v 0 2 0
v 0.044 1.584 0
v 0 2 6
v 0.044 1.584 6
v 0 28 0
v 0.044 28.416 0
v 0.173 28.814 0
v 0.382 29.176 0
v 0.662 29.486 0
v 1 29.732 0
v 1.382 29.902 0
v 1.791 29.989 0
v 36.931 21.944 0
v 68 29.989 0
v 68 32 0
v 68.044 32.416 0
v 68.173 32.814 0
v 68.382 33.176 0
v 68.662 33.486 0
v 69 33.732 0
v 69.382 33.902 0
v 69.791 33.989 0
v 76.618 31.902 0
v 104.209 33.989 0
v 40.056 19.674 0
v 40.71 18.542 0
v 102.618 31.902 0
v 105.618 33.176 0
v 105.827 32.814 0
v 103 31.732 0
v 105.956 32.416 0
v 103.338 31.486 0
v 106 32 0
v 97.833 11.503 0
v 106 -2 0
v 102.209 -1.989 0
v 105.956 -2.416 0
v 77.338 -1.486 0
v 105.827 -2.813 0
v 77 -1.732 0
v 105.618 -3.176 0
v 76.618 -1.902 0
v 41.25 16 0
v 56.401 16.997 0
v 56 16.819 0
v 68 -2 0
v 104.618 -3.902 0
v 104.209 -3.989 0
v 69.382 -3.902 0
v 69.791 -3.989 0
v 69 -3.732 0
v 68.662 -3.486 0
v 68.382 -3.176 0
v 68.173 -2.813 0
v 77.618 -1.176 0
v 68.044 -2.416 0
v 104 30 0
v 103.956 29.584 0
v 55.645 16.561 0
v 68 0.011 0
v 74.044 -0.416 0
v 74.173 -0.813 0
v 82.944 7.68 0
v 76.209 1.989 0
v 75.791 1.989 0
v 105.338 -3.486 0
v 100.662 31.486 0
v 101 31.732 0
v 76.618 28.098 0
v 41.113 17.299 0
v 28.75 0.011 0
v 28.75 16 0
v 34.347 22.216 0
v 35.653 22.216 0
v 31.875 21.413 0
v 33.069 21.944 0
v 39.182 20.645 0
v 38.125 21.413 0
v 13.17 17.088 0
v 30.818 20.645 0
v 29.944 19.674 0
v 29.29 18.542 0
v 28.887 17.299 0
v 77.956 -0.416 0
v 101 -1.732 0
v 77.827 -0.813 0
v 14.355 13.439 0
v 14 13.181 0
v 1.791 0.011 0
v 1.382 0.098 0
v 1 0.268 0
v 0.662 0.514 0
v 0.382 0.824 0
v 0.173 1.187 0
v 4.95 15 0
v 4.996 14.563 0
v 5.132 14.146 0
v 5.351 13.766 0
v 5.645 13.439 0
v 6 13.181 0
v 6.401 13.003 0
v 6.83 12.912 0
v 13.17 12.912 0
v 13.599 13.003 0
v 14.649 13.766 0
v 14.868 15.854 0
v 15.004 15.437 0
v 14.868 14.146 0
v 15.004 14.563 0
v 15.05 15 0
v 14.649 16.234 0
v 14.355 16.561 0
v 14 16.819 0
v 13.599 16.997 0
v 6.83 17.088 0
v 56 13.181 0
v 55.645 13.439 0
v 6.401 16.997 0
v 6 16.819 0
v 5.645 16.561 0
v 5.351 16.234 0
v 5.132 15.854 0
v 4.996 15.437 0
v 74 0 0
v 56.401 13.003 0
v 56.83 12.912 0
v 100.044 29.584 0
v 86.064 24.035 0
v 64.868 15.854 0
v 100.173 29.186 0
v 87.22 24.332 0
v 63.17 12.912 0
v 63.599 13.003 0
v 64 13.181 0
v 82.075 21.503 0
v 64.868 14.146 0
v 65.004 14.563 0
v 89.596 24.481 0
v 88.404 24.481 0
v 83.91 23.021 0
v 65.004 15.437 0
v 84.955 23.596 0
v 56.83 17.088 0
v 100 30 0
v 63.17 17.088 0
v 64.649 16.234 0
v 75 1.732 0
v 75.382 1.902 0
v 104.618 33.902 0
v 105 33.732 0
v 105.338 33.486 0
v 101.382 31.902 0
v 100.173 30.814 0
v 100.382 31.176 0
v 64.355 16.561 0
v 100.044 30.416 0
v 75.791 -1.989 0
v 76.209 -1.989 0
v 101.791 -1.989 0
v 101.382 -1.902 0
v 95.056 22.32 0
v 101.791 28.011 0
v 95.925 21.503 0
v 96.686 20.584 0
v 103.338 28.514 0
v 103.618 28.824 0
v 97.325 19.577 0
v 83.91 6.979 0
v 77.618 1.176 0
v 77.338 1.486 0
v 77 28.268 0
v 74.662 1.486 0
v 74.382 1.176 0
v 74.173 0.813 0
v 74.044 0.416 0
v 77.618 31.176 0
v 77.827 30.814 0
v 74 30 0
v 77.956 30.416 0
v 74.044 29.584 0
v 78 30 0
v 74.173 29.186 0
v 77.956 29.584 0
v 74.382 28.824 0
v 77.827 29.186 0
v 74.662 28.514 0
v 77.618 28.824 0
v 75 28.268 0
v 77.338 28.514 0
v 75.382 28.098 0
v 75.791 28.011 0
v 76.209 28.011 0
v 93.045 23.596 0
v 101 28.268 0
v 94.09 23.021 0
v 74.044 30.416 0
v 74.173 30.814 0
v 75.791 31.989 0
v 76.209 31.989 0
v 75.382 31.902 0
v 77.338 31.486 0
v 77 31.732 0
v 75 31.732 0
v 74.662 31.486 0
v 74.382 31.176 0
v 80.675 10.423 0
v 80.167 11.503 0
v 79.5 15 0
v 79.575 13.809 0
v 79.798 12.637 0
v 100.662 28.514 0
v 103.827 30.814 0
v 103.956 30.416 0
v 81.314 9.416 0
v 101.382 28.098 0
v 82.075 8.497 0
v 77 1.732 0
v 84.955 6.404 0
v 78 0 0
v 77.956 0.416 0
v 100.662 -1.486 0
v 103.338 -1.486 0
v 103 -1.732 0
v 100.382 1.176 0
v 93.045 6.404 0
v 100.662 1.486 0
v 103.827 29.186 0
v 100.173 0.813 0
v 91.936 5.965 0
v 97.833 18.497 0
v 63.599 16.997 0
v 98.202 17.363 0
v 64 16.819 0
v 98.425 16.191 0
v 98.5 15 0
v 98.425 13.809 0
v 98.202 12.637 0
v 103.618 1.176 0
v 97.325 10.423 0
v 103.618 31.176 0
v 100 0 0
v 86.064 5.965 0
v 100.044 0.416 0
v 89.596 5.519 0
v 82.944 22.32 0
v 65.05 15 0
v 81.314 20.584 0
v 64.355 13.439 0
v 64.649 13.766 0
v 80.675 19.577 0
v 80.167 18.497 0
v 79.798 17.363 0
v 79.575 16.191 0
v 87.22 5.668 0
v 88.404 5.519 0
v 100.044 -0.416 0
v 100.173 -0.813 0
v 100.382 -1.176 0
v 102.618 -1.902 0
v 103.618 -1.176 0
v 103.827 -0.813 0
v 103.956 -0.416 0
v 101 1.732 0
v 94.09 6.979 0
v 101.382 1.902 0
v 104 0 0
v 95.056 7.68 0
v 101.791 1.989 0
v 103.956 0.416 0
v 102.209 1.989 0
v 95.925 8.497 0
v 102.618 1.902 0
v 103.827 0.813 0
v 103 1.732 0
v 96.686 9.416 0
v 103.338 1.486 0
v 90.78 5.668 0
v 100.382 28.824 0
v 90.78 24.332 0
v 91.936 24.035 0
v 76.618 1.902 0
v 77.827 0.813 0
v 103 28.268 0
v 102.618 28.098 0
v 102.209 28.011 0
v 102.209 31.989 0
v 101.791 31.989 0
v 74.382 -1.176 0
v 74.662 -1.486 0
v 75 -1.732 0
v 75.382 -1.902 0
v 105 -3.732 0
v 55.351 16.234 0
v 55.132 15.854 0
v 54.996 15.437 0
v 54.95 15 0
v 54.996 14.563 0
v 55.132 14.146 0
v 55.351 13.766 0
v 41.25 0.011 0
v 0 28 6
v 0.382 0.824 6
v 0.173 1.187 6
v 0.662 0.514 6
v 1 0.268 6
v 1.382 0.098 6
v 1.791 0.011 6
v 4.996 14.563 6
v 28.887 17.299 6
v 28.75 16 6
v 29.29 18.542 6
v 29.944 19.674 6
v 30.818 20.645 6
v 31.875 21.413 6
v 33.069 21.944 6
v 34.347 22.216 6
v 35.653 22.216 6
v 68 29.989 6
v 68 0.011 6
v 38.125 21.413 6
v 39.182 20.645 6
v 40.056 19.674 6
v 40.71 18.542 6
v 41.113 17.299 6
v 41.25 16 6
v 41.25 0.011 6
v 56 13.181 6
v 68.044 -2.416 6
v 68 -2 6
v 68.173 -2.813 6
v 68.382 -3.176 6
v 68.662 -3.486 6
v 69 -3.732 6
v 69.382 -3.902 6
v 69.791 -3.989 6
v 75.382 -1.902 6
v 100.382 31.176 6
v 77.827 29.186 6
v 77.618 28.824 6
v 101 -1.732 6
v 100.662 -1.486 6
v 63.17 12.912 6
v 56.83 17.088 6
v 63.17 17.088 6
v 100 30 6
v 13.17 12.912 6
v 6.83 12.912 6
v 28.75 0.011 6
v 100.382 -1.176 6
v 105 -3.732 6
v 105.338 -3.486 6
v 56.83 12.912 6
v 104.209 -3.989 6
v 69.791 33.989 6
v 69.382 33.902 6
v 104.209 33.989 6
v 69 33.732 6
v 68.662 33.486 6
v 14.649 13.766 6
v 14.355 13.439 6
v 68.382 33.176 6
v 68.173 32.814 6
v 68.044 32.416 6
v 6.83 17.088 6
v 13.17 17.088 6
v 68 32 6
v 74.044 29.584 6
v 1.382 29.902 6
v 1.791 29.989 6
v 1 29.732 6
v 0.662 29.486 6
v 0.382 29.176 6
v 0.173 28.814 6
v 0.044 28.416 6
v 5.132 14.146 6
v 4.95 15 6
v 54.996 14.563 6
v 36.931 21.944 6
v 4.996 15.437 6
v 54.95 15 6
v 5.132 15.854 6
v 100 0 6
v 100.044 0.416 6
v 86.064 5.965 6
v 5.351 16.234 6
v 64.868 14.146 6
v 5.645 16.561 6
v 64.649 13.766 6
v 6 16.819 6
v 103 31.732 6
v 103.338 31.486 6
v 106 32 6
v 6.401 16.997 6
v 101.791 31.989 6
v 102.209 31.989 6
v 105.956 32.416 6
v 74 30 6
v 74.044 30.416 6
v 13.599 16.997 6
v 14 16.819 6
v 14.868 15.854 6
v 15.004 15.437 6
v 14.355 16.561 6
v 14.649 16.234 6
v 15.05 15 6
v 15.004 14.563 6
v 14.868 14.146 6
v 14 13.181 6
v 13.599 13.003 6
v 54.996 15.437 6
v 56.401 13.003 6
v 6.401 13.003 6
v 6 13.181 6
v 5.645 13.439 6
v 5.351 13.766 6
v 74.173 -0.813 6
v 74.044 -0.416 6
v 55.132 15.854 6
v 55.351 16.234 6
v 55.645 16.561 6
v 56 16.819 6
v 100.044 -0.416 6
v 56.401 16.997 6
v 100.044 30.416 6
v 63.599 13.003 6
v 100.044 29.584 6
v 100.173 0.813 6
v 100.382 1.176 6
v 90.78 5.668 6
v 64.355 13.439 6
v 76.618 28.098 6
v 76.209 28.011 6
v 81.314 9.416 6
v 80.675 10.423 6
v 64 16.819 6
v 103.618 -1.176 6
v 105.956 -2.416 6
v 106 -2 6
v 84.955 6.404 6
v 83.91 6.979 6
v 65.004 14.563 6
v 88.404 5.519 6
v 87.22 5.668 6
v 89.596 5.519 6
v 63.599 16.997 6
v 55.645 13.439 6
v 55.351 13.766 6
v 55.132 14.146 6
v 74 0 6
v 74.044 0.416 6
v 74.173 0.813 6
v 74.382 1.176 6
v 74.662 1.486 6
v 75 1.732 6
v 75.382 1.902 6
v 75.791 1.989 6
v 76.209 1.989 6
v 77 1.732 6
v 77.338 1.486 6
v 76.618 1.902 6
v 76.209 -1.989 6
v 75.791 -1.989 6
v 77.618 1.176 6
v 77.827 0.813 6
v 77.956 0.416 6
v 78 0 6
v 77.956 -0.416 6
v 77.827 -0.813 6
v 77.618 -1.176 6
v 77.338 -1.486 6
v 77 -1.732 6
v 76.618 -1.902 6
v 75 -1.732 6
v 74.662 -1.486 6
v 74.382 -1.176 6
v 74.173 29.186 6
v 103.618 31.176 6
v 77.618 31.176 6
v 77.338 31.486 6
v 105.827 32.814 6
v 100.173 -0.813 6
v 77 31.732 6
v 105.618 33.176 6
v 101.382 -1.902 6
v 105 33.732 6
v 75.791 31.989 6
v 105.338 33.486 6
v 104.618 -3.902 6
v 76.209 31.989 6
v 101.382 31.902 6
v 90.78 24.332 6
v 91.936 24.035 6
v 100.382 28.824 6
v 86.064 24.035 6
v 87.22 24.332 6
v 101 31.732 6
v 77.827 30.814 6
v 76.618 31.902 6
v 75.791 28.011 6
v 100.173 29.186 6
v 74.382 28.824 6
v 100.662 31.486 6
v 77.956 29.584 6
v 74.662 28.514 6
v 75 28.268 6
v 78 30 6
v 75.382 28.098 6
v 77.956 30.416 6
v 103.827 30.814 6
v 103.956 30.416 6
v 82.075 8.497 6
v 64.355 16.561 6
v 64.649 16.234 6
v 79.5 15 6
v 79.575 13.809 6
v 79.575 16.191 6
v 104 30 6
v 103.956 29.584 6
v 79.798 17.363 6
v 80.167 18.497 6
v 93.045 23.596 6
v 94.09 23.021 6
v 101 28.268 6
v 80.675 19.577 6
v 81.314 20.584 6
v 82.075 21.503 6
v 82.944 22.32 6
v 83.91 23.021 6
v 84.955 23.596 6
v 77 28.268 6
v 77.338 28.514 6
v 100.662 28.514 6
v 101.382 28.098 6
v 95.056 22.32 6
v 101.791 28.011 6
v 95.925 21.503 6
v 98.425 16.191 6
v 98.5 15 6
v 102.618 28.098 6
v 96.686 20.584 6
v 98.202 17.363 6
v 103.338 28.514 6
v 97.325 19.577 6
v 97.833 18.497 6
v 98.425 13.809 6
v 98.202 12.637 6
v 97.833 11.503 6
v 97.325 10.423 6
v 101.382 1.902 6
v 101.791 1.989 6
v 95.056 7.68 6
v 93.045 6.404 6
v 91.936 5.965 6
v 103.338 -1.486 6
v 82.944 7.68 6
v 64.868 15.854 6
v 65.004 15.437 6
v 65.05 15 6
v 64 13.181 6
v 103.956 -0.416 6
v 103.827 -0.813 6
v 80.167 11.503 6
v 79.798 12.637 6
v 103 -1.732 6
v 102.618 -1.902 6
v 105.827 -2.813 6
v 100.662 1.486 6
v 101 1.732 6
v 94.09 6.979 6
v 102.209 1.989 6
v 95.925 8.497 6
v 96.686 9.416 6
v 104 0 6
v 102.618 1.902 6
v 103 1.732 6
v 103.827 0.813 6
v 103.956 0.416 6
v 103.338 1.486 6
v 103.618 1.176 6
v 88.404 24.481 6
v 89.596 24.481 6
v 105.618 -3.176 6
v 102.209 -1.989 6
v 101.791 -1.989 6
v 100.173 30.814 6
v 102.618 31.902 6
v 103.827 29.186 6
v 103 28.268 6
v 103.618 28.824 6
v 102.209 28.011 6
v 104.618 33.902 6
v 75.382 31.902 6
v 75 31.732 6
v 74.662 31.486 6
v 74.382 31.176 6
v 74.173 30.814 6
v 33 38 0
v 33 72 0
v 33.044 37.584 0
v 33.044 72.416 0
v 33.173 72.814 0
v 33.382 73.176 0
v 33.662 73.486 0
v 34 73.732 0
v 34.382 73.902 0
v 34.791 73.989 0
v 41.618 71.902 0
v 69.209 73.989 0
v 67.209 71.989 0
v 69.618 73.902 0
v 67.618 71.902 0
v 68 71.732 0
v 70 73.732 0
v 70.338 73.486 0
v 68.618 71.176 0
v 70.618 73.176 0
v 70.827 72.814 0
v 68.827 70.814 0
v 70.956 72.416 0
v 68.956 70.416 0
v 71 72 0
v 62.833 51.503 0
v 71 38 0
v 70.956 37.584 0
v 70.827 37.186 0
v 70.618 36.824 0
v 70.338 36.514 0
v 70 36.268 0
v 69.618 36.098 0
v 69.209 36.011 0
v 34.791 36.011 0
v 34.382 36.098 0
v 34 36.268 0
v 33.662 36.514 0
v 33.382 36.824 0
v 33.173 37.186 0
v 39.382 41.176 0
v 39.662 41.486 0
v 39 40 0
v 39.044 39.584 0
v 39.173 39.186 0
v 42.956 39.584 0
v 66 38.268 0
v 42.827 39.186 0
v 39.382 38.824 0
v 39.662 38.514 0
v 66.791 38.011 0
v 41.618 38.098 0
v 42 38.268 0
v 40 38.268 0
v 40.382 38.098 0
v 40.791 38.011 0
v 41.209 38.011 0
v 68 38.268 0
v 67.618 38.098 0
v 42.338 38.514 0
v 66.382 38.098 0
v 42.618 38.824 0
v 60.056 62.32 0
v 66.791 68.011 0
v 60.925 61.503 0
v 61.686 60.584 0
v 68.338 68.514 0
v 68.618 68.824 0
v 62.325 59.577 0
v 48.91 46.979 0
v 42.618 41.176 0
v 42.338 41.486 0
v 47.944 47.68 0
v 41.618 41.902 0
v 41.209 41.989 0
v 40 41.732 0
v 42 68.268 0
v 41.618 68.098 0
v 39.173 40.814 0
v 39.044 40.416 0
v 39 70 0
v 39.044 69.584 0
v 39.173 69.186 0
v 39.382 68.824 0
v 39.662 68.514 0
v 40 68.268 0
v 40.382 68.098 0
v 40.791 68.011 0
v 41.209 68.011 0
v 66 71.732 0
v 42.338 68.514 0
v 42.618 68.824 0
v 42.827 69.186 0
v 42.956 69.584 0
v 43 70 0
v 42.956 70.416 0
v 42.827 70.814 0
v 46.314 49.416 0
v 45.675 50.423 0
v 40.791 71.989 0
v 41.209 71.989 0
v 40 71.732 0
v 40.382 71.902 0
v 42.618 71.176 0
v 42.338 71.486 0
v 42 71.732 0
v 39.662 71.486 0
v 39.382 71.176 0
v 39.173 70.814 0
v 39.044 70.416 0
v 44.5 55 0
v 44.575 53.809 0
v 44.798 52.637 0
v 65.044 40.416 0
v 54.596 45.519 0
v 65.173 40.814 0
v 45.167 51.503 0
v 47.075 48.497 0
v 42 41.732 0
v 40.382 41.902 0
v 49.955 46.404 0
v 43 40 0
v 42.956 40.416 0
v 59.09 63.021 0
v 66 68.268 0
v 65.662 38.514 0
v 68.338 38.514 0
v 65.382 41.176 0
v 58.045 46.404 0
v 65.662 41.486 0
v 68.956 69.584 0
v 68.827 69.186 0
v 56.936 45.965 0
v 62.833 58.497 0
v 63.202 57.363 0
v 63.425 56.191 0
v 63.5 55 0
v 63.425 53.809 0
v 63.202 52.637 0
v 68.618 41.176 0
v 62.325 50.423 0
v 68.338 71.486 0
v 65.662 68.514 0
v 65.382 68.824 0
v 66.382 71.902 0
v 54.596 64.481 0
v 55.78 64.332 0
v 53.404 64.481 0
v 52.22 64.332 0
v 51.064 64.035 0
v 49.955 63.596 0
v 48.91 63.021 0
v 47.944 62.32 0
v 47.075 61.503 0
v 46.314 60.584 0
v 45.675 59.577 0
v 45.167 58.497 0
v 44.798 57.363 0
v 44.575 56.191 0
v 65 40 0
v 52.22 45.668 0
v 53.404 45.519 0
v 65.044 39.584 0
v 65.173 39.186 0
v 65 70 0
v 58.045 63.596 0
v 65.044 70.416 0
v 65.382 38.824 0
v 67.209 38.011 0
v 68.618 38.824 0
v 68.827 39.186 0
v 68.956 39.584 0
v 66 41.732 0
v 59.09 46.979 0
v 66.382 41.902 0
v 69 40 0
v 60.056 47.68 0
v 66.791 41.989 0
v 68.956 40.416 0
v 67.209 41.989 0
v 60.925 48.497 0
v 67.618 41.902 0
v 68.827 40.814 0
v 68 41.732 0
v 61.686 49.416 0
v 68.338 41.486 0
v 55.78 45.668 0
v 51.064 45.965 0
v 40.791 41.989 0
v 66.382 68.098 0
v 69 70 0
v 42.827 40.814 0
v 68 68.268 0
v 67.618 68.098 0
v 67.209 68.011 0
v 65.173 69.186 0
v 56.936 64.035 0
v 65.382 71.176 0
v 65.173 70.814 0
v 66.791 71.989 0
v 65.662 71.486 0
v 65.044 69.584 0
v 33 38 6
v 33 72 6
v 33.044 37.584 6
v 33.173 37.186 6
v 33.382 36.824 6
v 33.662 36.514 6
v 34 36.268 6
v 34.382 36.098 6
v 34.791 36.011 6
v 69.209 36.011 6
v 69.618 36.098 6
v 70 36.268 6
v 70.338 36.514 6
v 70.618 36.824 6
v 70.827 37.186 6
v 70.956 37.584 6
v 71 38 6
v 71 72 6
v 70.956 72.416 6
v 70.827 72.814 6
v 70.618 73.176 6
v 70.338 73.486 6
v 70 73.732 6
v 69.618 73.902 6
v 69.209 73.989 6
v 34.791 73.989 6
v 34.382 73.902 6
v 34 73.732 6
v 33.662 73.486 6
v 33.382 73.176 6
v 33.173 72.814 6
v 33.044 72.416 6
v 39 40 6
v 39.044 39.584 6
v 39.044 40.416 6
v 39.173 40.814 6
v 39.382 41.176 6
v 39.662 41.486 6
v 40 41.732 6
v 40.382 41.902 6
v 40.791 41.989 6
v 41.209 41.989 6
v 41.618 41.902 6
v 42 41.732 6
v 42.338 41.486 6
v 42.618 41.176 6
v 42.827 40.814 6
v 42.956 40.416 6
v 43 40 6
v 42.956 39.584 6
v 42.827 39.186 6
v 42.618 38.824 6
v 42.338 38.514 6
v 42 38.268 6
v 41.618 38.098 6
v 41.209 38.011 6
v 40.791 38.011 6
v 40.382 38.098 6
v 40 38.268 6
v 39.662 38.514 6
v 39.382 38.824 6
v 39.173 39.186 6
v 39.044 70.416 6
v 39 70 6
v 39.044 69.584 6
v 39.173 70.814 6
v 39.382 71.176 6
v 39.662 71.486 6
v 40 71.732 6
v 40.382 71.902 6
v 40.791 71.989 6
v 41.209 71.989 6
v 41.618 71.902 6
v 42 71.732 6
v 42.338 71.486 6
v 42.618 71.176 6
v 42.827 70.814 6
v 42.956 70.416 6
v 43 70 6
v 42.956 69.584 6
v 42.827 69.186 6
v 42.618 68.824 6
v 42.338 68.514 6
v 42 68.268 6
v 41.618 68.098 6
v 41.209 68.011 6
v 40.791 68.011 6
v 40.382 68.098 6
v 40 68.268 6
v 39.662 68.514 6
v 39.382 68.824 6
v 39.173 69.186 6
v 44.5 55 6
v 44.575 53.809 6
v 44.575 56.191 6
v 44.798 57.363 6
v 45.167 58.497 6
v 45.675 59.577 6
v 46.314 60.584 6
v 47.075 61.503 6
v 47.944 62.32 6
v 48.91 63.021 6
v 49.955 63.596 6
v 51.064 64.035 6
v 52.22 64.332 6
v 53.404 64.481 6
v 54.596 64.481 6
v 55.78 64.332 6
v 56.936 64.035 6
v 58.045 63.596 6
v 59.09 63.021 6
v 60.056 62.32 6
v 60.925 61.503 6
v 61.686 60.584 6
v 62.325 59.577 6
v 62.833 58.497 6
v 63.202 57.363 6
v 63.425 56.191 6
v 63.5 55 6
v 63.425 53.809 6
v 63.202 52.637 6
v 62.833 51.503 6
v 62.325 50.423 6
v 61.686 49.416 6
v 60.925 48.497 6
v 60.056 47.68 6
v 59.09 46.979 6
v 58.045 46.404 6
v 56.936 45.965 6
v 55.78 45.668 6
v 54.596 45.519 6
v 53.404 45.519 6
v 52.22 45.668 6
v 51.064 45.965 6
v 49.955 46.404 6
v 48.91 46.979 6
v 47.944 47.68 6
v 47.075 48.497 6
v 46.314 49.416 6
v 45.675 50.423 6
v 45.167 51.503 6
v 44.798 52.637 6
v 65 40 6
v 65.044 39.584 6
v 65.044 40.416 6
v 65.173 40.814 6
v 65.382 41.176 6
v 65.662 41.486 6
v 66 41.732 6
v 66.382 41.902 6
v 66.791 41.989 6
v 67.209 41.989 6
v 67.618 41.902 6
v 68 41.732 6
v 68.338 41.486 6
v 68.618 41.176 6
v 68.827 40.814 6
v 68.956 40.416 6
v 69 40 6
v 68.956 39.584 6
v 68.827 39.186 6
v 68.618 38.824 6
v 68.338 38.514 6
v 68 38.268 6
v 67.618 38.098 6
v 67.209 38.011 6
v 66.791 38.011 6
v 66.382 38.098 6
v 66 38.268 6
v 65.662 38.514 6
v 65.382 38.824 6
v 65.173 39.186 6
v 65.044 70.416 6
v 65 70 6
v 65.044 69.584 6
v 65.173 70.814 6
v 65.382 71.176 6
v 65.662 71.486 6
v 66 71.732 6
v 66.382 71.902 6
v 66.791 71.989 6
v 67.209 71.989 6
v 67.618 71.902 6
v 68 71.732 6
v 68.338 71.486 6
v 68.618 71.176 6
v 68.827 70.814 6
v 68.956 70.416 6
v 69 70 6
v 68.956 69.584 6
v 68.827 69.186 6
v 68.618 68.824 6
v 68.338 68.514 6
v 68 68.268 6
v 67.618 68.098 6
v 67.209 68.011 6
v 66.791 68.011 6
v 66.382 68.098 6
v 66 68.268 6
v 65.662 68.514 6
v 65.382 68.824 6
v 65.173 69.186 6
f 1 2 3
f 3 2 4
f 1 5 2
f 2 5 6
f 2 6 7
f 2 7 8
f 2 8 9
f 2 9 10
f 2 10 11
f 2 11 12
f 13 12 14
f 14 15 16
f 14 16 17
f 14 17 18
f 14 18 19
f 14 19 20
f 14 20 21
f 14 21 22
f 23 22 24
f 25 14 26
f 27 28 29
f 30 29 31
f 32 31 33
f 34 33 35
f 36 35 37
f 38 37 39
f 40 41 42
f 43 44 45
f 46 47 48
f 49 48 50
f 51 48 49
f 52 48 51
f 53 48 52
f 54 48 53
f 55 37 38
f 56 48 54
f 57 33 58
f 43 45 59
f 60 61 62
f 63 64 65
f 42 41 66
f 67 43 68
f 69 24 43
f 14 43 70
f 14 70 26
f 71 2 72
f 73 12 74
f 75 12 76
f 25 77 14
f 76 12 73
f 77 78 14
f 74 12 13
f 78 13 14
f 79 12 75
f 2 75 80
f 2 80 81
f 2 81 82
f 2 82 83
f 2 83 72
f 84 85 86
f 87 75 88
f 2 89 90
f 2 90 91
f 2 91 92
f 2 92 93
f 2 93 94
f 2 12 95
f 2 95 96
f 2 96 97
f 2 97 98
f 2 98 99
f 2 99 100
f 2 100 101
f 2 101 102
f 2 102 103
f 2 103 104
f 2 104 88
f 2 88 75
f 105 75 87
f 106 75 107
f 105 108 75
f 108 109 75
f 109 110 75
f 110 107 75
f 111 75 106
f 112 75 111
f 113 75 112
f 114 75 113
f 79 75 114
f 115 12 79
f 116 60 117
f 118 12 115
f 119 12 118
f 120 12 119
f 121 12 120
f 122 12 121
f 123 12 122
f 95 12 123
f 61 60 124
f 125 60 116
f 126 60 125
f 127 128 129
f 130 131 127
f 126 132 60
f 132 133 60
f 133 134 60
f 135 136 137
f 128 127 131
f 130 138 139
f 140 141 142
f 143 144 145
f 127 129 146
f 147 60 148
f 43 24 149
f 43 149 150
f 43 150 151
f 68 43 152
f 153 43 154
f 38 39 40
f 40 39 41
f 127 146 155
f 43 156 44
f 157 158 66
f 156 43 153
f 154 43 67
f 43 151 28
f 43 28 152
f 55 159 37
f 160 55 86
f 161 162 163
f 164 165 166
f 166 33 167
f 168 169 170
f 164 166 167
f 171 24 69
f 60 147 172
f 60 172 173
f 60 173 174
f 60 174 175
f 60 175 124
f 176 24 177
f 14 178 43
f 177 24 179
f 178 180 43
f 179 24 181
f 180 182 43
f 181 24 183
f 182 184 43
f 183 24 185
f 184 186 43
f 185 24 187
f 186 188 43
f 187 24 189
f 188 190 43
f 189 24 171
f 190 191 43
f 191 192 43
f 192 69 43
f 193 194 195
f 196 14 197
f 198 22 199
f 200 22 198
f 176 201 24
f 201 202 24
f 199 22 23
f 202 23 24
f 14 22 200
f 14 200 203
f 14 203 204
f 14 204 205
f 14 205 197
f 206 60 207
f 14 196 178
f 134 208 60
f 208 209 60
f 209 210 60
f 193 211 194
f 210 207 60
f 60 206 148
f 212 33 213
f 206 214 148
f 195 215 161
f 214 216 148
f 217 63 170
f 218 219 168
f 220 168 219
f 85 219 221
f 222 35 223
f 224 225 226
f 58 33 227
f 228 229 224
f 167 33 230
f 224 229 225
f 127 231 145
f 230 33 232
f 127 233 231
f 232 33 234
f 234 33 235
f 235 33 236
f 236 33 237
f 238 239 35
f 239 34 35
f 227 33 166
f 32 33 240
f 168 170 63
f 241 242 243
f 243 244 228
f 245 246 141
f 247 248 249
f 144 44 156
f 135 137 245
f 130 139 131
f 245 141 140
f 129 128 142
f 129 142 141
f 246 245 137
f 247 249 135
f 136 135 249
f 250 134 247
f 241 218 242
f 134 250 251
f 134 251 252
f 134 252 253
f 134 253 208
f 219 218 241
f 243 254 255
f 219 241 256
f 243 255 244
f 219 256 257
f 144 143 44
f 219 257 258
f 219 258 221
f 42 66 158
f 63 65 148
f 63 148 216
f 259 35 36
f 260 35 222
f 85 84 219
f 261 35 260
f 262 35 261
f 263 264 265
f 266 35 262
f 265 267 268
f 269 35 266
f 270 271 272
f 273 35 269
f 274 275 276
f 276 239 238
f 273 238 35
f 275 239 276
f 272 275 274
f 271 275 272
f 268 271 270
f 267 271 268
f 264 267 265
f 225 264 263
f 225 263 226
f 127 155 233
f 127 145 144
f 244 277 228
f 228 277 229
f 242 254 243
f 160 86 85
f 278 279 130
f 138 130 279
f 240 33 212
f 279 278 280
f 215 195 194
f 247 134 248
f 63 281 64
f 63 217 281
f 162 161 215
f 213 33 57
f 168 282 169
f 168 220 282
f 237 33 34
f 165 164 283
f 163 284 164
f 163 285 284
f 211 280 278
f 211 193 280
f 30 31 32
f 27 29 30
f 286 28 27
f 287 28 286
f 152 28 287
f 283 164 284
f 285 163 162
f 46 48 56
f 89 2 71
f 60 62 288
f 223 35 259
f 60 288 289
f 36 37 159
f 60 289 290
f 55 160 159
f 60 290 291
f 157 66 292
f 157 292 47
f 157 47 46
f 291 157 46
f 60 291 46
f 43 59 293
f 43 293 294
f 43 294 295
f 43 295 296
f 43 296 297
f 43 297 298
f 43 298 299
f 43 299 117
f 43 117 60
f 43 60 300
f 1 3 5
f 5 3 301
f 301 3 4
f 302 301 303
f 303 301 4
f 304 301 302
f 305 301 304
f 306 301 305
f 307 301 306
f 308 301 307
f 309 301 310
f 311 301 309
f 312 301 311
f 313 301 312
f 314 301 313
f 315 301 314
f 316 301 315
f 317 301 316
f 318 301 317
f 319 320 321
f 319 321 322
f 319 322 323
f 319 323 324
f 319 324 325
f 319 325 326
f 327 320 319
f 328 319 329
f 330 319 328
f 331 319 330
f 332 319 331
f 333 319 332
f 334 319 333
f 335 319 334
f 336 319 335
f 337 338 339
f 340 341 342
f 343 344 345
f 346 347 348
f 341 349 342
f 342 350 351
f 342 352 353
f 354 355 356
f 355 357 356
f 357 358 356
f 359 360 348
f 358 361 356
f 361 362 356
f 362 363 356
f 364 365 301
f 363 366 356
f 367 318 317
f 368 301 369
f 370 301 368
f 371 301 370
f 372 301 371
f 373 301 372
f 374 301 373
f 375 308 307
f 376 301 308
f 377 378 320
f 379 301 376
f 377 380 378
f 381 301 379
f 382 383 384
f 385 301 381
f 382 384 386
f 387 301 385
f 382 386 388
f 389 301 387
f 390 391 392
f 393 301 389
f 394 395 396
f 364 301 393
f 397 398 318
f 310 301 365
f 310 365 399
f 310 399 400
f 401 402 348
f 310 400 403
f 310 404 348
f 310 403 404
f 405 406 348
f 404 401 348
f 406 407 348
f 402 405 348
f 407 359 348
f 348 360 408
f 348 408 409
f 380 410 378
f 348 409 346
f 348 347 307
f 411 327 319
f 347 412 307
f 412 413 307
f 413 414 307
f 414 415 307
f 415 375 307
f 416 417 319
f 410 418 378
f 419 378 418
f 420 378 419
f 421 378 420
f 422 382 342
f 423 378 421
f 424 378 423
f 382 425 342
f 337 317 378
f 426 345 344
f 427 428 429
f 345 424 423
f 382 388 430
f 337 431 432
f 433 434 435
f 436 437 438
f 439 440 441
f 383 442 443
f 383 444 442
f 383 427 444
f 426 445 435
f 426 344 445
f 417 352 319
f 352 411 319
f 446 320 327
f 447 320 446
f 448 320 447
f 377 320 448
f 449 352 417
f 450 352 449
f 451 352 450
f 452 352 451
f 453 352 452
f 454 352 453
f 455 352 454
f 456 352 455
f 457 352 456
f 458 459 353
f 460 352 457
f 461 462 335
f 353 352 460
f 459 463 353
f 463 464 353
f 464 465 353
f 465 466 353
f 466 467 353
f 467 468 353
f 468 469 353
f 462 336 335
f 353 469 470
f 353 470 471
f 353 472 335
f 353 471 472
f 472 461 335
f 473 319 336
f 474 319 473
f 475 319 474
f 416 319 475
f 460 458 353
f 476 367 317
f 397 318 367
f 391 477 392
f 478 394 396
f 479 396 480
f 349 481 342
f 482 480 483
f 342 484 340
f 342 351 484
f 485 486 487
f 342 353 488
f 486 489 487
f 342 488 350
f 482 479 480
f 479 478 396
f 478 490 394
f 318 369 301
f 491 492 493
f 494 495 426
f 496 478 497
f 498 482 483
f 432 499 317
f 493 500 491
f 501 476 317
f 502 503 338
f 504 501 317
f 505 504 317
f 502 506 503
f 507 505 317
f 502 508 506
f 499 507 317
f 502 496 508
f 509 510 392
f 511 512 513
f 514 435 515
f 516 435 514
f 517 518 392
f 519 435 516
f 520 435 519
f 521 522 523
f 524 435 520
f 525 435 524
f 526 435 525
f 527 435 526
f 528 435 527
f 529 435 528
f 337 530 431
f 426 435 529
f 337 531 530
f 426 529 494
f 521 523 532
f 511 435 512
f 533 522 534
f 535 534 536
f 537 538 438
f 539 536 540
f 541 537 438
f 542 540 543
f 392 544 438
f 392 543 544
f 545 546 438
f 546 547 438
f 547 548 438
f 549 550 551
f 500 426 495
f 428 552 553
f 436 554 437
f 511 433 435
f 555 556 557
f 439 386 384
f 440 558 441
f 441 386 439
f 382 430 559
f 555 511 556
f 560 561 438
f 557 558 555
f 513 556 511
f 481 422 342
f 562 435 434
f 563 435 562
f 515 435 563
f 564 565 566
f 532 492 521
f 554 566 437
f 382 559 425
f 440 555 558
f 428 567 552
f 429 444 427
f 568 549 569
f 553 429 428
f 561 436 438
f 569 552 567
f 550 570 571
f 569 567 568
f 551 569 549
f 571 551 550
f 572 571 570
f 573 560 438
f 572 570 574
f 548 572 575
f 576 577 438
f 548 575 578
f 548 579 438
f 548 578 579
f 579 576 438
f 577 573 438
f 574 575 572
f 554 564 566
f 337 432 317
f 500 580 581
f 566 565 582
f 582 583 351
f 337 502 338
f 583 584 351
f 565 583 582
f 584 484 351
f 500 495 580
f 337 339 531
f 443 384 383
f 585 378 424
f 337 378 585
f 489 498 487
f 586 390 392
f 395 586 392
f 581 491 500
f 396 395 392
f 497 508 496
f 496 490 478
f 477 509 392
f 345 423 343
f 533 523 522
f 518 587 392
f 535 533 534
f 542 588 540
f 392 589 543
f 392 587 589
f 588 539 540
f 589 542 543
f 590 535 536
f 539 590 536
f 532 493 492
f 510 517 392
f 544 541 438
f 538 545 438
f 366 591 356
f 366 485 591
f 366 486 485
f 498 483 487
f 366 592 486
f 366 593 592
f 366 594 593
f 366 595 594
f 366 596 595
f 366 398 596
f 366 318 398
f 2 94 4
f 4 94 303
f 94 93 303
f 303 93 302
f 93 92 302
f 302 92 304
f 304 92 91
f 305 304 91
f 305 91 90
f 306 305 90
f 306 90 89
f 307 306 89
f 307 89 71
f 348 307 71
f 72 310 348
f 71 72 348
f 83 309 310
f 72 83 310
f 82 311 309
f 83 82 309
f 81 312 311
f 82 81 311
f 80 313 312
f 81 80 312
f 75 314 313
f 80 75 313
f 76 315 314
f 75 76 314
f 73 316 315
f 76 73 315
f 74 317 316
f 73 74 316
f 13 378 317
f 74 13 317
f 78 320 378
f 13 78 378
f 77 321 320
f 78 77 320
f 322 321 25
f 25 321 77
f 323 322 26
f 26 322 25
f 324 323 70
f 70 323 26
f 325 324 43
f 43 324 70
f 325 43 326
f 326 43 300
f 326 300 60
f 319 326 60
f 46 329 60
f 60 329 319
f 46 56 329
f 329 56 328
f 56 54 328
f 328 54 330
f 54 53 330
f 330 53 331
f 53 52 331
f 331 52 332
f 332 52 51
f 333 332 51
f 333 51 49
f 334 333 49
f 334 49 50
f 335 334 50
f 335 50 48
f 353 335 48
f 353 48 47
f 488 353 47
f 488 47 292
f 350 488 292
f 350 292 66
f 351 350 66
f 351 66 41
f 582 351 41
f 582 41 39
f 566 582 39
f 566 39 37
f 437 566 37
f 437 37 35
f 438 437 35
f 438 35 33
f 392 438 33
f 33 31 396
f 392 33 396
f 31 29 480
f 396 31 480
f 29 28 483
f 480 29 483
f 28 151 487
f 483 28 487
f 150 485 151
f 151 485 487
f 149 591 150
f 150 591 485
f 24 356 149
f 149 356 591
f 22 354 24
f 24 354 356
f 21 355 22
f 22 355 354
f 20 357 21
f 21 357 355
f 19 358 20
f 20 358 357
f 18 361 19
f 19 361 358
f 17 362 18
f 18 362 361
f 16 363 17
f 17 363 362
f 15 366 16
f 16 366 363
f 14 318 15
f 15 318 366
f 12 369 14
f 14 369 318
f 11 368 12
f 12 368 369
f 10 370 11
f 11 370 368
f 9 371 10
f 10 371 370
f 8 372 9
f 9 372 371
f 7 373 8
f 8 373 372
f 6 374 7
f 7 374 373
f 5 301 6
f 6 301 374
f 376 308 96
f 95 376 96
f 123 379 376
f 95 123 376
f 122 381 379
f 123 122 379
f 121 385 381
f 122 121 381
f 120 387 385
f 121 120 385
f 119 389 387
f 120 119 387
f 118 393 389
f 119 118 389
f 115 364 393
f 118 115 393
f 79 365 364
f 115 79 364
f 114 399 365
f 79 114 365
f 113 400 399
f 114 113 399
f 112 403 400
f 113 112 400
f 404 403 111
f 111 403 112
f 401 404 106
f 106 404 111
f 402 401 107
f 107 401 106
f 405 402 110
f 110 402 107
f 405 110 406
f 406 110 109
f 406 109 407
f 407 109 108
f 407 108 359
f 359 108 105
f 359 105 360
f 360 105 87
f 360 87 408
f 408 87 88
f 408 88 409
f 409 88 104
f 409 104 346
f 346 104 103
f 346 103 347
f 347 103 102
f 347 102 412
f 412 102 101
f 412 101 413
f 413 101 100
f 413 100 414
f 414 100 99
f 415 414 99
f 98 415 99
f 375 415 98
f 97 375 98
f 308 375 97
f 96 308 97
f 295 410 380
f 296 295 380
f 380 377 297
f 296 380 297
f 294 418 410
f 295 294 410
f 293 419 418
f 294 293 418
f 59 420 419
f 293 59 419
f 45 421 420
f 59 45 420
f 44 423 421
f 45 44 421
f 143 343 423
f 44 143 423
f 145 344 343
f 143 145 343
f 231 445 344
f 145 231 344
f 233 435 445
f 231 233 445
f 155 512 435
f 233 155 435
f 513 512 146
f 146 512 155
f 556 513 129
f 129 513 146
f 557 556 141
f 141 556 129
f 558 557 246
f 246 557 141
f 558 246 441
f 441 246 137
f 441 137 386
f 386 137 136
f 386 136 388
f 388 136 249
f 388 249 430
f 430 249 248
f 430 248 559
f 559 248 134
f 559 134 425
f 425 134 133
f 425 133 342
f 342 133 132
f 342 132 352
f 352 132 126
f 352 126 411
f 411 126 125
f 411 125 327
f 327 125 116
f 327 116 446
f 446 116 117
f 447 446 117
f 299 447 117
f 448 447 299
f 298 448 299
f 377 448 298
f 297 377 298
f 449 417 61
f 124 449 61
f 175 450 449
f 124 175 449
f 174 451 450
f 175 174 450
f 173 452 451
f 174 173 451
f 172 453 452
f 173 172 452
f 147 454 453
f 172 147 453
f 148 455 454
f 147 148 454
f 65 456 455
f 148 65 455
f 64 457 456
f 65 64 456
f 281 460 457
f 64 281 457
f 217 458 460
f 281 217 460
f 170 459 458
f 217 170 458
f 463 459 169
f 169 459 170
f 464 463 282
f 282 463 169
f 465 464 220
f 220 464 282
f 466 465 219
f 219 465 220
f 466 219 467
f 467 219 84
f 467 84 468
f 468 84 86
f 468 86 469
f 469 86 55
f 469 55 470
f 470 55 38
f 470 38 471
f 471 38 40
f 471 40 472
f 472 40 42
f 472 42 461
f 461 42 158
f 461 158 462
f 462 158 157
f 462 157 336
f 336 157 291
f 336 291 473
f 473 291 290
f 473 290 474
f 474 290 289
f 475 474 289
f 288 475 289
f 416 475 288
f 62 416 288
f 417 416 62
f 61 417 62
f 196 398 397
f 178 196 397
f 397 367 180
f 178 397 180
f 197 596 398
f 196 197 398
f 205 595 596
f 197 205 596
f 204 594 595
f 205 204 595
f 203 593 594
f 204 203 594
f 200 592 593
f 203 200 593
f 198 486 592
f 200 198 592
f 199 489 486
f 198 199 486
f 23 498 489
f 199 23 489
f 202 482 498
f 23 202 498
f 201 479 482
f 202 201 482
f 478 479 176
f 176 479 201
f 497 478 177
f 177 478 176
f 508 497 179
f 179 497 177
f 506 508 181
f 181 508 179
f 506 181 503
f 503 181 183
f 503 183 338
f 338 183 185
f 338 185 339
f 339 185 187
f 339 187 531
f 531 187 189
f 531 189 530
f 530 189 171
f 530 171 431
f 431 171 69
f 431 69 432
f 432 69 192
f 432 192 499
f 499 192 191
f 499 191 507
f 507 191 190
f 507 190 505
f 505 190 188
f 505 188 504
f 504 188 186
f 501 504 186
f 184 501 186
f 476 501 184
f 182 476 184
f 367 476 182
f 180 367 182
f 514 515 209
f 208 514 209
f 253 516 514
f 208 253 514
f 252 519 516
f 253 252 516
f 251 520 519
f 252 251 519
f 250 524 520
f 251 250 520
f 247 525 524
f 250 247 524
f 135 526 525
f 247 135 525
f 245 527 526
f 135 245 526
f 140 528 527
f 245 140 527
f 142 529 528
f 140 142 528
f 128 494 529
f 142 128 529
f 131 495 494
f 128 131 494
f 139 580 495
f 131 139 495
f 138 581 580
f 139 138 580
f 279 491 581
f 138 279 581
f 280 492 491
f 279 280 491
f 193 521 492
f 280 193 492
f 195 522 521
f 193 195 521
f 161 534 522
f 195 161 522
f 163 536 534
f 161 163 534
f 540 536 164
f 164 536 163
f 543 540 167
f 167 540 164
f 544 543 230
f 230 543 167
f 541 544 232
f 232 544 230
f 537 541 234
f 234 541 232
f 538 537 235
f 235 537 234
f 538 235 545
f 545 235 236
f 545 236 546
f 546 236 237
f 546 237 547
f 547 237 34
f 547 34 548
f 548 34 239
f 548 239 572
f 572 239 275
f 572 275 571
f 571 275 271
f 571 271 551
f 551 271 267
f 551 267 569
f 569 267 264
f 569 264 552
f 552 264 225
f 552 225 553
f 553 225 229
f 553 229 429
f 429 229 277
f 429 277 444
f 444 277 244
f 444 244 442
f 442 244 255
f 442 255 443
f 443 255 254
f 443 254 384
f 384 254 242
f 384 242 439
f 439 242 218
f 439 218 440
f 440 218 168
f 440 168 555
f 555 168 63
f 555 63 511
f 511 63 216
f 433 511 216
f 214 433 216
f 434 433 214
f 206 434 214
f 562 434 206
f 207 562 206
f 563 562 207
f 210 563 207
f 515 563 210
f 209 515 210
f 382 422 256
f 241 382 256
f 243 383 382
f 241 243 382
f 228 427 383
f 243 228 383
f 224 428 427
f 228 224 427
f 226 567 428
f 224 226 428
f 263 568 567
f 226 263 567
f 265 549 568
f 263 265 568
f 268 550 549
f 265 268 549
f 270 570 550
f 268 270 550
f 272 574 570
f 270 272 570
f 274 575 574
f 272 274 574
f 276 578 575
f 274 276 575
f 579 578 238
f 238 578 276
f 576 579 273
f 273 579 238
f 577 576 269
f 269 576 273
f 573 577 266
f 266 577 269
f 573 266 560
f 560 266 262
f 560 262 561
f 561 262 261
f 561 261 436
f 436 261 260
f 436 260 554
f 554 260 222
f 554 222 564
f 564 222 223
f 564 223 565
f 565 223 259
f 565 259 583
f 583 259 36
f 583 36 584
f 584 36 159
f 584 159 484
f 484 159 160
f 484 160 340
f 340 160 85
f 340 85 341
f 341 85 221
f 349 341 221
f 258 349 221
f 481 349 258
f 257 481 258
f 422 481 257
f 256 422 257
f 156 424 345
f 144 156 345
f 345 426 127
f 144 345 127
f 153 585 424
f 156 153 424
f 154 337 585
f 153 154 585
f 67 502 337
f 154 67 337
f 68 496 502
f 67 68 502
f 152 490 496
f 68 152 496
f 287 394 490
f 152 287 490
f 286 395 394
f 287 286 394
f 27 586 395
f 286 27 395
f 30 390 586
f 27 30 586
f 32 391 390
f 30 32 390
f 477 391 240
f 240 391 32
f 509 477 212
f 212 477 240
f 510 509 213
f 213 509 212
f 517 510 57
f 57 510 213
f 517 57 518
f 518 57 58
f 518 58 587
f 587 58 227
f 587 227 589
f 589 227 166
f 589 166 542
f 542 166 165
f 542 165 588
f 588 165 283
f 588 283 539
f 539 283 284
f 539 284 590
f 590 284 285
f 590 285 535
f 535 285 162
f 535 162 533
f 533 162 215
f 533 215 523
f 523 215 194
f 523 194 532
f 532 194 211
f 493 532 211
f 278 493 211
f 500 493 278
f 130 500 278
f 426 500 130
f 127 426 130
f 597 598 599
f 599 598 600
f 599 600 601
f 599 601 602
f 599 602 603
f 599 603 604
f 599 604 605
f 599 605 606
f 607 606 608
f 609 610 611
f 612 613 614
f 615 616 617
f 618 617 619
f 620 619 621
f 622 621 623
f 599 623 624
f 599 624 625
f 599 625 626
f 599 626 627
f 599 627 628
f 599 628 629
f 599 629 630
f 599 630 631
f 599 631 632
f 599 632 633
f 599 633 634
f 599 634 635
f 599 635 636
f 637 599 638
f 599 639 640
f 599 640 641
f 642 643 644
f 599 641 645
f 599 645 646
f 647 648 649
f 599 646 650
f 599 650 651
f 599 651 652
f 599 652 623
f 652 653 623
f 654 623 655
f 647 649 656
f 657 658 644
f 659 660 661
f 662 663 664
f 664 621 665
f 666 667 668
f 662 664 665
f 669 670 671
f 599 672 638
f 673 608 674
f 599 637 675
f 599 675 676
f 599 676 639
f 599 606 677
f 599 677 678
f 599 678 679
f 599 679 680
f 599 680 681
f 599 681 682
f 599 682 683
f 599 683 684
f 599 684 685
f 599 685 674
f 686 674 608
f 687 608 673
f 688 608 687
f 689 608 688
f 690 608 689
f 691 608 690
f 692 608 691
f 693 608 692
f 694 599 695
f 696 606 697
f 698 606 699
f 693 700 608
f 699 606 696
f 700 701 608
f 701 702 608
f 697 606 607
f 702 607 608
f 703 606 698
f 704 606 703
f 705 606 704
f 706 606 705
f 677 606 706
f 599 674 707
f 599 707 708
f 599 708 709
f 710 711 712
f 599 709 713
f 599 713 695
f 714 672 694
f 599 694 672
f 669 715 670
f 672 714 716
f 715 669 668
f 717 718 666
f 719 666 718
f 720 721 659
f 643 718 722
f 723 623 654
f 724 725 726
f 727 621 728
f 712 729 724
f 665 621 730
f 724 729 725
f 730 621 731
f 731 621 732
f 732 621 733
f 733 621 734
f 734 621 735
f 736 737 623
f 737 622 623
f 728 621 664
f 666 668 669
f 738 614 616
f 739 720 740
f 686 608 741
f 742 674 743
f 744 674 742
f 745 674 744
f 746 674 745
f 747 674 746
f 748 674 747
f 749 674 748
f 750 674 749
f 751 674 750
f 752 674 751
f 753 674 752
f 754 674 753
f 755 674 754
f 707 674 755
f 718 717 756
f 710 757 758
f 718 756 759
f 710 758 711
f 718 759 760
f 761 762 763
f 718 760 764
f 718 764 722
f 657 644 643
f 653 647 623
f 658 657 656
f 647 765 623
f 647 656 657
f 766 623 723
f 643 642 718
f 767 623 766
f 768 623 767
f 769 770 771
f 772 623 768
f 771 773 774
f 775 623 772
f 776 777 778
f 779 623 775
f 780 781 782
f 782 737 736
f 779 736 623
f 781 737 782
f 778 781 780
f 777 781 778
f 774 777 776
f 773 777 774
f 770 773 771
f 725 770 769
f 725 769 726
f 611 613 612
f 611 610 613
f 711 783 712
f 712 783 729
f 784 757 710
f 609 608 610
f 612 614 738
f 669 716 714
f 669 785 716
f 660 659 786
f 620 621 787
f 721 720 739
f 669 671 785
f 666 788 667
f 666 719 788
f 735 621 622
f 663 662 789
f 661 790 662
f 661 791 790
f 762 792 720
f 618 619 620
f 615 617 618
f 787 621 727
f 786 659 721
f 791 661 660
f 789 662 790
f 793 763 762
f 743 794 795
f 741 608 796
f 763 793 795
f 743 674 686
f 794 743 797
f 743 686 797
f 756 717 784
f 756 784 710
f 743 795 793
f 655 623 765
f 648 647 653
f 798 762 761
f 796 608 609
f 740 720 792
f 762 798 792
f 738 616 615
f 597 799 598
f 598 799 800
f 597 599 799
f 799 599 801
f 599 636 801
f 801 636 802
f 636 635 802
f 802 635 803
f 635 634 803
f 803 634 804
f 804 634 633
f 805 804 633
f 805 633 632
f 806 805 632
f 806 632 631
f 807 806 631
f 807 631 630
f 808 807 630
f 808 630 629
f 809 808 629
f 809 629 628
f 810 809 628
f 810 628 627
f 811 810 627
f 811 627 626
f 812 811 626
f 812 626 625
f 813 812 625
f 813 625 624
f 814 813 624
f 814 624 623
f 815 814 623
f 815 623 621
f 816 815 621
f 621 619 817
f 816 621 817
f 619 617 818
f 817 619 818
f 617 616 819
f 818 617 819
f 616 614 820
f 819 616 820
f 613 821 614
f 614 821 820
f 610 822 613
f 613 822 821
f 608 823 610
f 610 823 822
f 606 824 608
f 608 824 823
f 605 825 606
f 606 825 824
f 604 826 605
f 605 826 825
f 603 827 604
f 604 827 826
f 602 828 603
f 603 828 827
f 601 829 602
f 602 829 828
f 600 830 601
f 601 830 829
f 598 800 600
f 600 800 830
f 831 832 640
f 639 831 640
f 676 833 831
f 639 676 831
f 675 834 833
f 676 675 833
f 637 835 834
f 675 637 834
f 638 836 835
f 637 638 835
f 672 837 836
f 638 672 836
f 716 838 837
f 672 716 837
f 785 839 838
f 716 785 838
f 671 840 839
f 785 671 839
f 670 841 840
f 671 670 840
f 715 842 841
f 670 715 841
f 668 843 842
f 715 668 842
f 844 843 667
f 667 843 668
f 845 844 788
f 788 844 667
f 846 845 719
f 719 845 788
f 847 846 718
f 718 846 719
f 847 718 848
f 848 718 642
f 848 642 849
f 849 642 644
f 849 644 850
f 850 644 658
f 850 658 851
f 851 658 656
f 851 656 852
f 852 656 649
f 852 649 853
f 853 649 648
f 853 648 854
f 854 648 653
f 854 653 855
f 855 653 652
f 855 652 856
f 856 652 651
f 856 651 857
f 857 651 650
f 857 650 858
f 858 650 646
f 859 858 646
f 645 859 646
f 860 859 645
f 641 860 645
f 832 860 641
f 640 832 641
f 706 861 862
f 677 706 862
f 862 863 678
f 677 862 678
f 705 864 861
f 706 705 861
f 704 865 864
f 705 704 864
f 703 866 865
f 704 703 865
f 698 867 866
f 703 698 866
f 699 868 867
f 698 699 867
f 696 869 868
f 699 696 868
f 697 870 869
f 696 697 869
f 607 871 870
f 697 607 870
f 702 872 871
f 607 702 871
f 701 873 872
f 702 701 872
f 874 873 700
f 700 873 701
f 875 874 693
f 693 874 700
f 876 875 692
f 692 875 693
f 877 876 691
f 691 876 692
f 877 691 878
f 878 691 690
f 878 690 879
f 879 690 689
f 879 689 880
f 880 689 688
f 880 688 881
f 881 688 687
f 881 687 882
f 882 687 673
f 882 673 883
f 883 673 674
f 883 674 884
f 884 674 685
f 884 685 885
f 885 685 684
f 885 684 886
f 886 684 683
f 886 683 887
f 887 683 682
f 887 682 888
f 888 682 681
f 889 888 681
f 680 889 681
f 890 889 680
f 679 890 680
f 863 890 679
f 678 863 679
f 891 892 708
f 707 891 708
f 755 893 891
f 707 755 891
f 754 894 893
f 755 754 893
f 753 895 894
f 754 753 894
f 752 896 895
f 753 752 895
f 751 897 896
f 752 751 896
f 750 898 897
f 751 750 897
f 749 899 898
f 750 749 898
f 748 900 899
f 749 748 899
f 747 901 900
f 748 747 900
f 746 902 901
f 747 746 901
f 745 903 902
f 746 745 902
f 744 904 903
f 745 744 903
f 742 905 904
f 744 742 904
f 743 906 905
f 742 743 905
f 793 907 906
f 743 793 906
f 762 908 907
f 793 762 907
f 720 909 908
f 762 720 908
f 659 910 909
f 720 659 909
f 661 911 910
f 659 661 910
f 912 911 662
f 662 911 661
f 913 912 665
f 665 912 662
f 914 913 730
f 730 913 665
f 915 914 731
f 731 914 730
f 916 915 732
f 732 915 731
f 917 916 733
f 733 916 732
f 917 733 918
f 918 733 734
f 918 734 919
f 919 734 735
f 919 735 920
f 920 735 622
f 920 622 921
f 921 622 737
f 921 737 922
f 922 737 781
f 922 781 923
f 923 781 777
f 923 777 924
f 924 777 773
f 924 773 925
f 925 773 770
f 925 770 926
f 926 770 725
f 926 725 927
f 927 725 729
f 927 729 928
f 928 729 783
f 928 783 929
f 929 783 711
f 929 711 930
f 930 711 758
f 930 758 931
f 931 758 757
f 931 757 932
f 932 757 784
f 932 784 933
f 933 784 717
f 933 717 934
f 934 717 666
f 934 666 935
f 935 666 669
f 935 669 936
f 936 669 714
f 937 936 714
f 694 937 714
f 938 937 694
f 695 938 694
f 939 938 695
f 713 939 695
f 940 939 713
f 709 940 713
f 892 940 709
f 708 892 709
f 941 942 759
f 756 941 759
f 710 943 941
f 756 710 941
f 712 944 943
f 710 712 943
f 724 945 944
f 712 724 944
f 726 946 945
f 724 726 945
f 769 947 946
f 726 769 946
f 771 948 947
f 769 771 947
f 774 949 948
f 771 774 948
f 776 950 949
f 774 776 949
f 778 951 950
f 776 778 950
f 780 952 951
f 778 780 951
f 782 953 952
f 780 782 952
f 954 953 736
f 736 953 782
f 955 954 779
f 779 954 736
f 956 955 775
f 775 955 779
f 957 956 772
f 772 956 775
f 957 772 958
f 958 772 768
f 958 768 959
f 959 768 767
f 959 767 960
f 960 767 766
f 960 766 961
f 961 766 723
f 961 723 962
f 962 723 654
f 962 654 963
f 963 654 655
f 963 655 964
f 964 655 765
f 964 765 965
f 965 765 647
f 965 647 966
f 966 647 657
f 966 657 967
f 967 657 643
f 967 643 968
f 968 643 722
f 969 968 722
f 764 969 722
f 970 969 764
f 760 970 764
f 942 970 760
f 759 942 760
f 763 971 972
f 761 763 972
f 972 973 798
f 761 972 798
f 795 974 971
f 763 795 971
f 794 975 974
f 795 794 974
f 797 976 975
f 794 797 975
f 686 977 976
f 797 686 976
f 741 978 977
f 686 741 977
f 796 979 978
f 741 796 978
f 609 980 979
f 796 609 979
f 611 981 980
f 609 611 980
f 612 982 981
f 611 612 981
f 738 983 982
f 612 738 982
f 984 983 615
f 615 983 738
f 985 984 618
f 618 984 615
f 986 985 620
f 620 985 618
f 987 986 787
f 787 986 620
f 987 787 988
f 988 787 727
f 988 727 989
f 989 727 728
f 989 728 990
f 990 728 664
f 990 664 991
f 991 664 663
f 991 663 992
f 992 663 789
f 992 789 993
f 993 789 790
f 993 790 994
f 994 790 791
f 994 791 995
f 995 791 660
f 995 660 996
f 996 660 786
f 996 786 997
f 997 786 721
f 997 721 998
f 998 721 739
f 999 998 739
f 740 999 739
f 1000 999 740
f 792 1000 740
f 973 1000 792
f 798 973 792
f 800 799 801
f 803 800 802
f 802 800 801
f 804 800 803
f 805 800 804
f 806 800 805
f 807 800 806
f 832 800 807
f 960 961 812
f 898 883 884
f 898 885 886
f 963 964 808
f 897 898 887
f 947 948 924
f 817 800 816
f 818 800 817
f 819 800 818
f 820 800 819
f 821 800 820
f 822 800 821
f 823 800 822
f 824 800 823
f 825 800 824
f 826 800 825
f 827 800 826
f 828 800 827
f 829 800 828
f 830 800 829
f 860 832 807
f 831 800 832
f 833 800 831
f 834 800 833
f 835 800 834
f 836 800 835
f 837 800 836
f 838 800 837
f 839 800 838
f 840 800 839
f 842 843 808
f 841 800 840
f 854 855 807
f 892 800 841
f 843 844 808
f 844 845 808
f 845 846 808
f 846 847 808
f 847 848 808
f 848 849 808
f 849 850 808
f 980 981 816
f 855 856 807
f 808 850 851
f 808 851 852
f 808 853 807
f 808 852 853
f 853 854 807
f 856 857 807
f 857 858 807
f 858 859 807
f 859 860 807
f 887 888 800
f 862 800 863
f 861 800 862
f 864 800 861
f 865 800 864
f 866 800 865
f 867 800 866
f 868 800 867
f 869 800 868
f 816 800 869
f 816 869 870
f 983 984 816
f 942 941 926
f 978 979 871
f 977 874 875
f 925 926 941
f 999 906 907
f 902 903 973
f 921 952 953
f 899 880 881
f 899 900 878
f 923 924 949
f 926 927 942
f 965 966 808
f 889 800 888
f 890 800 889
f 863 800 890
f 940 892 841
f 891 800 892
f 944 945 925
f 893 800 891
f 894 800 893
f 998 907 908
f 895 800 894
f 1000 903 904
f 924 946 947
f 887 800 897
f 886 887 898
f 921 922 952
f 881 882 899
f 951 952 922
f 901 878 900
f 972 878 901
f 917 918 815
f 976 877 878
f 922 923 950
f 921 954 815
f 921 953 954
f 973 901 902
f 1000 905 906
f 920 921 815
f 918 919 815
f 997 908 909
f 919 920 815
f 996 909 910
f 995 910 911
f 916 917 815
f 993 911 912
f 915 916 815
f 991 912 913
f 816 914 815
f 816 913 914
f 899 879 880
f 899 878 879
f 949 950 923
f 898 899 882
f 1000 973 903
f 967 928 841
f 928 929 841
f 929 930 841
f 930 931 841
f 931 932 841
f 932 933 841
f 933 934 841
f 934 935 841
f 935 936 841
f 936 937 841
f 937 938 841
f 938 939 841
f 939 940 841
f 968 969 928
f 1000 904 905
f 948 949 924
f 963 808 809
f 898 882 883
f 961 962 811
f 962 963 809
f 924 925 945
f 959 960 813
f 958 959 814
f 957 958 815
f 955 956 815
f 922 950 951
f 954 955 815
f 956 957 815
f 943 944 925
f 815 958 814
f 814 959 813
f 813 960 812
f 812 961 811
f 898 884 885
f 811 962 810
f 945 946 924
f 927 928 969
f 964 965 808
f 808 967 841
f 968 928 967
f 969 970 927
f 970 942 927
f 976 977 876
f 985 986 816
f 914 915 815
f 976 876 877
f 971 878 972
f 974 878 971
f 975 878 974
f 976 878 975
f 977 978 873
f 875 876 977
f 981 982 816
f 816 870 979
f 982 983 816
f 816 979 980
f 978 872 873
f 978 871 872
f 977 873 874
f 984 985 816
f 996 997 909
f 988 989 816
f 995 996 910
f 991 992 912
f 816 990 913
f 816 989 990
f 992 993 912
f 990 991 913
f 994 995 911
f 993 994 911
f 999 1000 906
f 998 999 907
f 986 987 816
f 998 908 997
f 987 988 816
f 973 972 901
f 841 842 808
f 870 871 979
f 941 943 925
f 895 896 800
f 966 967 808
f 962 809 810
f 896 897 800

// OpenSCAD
length=70;
width=30;
height=6;

slot_width=4.2;
slot_length=10.1;

neck_dia=12.5;
sensor_dia=19;

$fn=30;

groove_plate();
sensor_holder();

translate([-length/2,width+10])
sensor_holder();

module sensor_holder() {
	margin=4;
	width=width+(margin*2);

	translate([0,-margin])
	difference() {
		base();
		sensor_hole();
		screw_holes();
	}

	module base() {
		hull() {
			translate([length,2])
			cylinder(h=height, d=4);
			translate([length,width-2])
			cylinder(h=height, d=4);

			translate([100+4,2])
			cylinder(h=height, d=4);
			translate([100+4,width-2])
			cylinder(h=height, d=4);
		}
	}

	module sensor_hole() {
		$fn=50;
		translate([85+4,width/2,-0.5])
		union() {
			cylinder(h=height+1, d=sensor_dia);
			%cylinder(h=height+1, d=30);
		}
	}

	module screw_holes() {
		translate([length+2+4,margin,-0.5])
		cylinder(h=height+1,d=4);
		translate([length+28+4,margin,-0.5])
		cylinder(h=height+1,d=4);

		translate([length+2+4,width-margin,-0.5])
		cylinder(h=height+1,d=4);
		translate([length+28+4,width-margin,-0.5])
		cylinder(h=height+1,d=4);
	}
}

module groove_plate() {
	difference() {
		base();
		translate([10,width/2])
		slot();
		translate([length-10,width/2])
		slot();
		translate([length/2,width/2])
		groove();
	}

	module base() {
		hull() {
			translate([2,2])
			cylinder(h=height, d=4);
		
			translate([length-2,2])
			cylinder(h=height, d=4);
		
			translate([2,width-2])
			cylinder(h=height, d=4);
		
			translate([length-2,width-2])
			cylinder(h=height, d=4);
		}
	}

	module slot() {
		translate([slot_width/2-slot_length/2,0])
		hull() {
			translate([0,0,-0.5])
			cylinder(h=height+1, d=slot_width);

			translate([slot_length-slot_width,0,-0.5])
			cylinder(h=height+1, d=slot_width);
		}
	}

	module groove() {
		translate([0,1,-0.5])
		hull() {
			cylinder(h=height+1, d=neck_dia);
			translate([-neck_dia/2,-20])
			cube([neck_dia,1,height+1]);
		}
	}
}
